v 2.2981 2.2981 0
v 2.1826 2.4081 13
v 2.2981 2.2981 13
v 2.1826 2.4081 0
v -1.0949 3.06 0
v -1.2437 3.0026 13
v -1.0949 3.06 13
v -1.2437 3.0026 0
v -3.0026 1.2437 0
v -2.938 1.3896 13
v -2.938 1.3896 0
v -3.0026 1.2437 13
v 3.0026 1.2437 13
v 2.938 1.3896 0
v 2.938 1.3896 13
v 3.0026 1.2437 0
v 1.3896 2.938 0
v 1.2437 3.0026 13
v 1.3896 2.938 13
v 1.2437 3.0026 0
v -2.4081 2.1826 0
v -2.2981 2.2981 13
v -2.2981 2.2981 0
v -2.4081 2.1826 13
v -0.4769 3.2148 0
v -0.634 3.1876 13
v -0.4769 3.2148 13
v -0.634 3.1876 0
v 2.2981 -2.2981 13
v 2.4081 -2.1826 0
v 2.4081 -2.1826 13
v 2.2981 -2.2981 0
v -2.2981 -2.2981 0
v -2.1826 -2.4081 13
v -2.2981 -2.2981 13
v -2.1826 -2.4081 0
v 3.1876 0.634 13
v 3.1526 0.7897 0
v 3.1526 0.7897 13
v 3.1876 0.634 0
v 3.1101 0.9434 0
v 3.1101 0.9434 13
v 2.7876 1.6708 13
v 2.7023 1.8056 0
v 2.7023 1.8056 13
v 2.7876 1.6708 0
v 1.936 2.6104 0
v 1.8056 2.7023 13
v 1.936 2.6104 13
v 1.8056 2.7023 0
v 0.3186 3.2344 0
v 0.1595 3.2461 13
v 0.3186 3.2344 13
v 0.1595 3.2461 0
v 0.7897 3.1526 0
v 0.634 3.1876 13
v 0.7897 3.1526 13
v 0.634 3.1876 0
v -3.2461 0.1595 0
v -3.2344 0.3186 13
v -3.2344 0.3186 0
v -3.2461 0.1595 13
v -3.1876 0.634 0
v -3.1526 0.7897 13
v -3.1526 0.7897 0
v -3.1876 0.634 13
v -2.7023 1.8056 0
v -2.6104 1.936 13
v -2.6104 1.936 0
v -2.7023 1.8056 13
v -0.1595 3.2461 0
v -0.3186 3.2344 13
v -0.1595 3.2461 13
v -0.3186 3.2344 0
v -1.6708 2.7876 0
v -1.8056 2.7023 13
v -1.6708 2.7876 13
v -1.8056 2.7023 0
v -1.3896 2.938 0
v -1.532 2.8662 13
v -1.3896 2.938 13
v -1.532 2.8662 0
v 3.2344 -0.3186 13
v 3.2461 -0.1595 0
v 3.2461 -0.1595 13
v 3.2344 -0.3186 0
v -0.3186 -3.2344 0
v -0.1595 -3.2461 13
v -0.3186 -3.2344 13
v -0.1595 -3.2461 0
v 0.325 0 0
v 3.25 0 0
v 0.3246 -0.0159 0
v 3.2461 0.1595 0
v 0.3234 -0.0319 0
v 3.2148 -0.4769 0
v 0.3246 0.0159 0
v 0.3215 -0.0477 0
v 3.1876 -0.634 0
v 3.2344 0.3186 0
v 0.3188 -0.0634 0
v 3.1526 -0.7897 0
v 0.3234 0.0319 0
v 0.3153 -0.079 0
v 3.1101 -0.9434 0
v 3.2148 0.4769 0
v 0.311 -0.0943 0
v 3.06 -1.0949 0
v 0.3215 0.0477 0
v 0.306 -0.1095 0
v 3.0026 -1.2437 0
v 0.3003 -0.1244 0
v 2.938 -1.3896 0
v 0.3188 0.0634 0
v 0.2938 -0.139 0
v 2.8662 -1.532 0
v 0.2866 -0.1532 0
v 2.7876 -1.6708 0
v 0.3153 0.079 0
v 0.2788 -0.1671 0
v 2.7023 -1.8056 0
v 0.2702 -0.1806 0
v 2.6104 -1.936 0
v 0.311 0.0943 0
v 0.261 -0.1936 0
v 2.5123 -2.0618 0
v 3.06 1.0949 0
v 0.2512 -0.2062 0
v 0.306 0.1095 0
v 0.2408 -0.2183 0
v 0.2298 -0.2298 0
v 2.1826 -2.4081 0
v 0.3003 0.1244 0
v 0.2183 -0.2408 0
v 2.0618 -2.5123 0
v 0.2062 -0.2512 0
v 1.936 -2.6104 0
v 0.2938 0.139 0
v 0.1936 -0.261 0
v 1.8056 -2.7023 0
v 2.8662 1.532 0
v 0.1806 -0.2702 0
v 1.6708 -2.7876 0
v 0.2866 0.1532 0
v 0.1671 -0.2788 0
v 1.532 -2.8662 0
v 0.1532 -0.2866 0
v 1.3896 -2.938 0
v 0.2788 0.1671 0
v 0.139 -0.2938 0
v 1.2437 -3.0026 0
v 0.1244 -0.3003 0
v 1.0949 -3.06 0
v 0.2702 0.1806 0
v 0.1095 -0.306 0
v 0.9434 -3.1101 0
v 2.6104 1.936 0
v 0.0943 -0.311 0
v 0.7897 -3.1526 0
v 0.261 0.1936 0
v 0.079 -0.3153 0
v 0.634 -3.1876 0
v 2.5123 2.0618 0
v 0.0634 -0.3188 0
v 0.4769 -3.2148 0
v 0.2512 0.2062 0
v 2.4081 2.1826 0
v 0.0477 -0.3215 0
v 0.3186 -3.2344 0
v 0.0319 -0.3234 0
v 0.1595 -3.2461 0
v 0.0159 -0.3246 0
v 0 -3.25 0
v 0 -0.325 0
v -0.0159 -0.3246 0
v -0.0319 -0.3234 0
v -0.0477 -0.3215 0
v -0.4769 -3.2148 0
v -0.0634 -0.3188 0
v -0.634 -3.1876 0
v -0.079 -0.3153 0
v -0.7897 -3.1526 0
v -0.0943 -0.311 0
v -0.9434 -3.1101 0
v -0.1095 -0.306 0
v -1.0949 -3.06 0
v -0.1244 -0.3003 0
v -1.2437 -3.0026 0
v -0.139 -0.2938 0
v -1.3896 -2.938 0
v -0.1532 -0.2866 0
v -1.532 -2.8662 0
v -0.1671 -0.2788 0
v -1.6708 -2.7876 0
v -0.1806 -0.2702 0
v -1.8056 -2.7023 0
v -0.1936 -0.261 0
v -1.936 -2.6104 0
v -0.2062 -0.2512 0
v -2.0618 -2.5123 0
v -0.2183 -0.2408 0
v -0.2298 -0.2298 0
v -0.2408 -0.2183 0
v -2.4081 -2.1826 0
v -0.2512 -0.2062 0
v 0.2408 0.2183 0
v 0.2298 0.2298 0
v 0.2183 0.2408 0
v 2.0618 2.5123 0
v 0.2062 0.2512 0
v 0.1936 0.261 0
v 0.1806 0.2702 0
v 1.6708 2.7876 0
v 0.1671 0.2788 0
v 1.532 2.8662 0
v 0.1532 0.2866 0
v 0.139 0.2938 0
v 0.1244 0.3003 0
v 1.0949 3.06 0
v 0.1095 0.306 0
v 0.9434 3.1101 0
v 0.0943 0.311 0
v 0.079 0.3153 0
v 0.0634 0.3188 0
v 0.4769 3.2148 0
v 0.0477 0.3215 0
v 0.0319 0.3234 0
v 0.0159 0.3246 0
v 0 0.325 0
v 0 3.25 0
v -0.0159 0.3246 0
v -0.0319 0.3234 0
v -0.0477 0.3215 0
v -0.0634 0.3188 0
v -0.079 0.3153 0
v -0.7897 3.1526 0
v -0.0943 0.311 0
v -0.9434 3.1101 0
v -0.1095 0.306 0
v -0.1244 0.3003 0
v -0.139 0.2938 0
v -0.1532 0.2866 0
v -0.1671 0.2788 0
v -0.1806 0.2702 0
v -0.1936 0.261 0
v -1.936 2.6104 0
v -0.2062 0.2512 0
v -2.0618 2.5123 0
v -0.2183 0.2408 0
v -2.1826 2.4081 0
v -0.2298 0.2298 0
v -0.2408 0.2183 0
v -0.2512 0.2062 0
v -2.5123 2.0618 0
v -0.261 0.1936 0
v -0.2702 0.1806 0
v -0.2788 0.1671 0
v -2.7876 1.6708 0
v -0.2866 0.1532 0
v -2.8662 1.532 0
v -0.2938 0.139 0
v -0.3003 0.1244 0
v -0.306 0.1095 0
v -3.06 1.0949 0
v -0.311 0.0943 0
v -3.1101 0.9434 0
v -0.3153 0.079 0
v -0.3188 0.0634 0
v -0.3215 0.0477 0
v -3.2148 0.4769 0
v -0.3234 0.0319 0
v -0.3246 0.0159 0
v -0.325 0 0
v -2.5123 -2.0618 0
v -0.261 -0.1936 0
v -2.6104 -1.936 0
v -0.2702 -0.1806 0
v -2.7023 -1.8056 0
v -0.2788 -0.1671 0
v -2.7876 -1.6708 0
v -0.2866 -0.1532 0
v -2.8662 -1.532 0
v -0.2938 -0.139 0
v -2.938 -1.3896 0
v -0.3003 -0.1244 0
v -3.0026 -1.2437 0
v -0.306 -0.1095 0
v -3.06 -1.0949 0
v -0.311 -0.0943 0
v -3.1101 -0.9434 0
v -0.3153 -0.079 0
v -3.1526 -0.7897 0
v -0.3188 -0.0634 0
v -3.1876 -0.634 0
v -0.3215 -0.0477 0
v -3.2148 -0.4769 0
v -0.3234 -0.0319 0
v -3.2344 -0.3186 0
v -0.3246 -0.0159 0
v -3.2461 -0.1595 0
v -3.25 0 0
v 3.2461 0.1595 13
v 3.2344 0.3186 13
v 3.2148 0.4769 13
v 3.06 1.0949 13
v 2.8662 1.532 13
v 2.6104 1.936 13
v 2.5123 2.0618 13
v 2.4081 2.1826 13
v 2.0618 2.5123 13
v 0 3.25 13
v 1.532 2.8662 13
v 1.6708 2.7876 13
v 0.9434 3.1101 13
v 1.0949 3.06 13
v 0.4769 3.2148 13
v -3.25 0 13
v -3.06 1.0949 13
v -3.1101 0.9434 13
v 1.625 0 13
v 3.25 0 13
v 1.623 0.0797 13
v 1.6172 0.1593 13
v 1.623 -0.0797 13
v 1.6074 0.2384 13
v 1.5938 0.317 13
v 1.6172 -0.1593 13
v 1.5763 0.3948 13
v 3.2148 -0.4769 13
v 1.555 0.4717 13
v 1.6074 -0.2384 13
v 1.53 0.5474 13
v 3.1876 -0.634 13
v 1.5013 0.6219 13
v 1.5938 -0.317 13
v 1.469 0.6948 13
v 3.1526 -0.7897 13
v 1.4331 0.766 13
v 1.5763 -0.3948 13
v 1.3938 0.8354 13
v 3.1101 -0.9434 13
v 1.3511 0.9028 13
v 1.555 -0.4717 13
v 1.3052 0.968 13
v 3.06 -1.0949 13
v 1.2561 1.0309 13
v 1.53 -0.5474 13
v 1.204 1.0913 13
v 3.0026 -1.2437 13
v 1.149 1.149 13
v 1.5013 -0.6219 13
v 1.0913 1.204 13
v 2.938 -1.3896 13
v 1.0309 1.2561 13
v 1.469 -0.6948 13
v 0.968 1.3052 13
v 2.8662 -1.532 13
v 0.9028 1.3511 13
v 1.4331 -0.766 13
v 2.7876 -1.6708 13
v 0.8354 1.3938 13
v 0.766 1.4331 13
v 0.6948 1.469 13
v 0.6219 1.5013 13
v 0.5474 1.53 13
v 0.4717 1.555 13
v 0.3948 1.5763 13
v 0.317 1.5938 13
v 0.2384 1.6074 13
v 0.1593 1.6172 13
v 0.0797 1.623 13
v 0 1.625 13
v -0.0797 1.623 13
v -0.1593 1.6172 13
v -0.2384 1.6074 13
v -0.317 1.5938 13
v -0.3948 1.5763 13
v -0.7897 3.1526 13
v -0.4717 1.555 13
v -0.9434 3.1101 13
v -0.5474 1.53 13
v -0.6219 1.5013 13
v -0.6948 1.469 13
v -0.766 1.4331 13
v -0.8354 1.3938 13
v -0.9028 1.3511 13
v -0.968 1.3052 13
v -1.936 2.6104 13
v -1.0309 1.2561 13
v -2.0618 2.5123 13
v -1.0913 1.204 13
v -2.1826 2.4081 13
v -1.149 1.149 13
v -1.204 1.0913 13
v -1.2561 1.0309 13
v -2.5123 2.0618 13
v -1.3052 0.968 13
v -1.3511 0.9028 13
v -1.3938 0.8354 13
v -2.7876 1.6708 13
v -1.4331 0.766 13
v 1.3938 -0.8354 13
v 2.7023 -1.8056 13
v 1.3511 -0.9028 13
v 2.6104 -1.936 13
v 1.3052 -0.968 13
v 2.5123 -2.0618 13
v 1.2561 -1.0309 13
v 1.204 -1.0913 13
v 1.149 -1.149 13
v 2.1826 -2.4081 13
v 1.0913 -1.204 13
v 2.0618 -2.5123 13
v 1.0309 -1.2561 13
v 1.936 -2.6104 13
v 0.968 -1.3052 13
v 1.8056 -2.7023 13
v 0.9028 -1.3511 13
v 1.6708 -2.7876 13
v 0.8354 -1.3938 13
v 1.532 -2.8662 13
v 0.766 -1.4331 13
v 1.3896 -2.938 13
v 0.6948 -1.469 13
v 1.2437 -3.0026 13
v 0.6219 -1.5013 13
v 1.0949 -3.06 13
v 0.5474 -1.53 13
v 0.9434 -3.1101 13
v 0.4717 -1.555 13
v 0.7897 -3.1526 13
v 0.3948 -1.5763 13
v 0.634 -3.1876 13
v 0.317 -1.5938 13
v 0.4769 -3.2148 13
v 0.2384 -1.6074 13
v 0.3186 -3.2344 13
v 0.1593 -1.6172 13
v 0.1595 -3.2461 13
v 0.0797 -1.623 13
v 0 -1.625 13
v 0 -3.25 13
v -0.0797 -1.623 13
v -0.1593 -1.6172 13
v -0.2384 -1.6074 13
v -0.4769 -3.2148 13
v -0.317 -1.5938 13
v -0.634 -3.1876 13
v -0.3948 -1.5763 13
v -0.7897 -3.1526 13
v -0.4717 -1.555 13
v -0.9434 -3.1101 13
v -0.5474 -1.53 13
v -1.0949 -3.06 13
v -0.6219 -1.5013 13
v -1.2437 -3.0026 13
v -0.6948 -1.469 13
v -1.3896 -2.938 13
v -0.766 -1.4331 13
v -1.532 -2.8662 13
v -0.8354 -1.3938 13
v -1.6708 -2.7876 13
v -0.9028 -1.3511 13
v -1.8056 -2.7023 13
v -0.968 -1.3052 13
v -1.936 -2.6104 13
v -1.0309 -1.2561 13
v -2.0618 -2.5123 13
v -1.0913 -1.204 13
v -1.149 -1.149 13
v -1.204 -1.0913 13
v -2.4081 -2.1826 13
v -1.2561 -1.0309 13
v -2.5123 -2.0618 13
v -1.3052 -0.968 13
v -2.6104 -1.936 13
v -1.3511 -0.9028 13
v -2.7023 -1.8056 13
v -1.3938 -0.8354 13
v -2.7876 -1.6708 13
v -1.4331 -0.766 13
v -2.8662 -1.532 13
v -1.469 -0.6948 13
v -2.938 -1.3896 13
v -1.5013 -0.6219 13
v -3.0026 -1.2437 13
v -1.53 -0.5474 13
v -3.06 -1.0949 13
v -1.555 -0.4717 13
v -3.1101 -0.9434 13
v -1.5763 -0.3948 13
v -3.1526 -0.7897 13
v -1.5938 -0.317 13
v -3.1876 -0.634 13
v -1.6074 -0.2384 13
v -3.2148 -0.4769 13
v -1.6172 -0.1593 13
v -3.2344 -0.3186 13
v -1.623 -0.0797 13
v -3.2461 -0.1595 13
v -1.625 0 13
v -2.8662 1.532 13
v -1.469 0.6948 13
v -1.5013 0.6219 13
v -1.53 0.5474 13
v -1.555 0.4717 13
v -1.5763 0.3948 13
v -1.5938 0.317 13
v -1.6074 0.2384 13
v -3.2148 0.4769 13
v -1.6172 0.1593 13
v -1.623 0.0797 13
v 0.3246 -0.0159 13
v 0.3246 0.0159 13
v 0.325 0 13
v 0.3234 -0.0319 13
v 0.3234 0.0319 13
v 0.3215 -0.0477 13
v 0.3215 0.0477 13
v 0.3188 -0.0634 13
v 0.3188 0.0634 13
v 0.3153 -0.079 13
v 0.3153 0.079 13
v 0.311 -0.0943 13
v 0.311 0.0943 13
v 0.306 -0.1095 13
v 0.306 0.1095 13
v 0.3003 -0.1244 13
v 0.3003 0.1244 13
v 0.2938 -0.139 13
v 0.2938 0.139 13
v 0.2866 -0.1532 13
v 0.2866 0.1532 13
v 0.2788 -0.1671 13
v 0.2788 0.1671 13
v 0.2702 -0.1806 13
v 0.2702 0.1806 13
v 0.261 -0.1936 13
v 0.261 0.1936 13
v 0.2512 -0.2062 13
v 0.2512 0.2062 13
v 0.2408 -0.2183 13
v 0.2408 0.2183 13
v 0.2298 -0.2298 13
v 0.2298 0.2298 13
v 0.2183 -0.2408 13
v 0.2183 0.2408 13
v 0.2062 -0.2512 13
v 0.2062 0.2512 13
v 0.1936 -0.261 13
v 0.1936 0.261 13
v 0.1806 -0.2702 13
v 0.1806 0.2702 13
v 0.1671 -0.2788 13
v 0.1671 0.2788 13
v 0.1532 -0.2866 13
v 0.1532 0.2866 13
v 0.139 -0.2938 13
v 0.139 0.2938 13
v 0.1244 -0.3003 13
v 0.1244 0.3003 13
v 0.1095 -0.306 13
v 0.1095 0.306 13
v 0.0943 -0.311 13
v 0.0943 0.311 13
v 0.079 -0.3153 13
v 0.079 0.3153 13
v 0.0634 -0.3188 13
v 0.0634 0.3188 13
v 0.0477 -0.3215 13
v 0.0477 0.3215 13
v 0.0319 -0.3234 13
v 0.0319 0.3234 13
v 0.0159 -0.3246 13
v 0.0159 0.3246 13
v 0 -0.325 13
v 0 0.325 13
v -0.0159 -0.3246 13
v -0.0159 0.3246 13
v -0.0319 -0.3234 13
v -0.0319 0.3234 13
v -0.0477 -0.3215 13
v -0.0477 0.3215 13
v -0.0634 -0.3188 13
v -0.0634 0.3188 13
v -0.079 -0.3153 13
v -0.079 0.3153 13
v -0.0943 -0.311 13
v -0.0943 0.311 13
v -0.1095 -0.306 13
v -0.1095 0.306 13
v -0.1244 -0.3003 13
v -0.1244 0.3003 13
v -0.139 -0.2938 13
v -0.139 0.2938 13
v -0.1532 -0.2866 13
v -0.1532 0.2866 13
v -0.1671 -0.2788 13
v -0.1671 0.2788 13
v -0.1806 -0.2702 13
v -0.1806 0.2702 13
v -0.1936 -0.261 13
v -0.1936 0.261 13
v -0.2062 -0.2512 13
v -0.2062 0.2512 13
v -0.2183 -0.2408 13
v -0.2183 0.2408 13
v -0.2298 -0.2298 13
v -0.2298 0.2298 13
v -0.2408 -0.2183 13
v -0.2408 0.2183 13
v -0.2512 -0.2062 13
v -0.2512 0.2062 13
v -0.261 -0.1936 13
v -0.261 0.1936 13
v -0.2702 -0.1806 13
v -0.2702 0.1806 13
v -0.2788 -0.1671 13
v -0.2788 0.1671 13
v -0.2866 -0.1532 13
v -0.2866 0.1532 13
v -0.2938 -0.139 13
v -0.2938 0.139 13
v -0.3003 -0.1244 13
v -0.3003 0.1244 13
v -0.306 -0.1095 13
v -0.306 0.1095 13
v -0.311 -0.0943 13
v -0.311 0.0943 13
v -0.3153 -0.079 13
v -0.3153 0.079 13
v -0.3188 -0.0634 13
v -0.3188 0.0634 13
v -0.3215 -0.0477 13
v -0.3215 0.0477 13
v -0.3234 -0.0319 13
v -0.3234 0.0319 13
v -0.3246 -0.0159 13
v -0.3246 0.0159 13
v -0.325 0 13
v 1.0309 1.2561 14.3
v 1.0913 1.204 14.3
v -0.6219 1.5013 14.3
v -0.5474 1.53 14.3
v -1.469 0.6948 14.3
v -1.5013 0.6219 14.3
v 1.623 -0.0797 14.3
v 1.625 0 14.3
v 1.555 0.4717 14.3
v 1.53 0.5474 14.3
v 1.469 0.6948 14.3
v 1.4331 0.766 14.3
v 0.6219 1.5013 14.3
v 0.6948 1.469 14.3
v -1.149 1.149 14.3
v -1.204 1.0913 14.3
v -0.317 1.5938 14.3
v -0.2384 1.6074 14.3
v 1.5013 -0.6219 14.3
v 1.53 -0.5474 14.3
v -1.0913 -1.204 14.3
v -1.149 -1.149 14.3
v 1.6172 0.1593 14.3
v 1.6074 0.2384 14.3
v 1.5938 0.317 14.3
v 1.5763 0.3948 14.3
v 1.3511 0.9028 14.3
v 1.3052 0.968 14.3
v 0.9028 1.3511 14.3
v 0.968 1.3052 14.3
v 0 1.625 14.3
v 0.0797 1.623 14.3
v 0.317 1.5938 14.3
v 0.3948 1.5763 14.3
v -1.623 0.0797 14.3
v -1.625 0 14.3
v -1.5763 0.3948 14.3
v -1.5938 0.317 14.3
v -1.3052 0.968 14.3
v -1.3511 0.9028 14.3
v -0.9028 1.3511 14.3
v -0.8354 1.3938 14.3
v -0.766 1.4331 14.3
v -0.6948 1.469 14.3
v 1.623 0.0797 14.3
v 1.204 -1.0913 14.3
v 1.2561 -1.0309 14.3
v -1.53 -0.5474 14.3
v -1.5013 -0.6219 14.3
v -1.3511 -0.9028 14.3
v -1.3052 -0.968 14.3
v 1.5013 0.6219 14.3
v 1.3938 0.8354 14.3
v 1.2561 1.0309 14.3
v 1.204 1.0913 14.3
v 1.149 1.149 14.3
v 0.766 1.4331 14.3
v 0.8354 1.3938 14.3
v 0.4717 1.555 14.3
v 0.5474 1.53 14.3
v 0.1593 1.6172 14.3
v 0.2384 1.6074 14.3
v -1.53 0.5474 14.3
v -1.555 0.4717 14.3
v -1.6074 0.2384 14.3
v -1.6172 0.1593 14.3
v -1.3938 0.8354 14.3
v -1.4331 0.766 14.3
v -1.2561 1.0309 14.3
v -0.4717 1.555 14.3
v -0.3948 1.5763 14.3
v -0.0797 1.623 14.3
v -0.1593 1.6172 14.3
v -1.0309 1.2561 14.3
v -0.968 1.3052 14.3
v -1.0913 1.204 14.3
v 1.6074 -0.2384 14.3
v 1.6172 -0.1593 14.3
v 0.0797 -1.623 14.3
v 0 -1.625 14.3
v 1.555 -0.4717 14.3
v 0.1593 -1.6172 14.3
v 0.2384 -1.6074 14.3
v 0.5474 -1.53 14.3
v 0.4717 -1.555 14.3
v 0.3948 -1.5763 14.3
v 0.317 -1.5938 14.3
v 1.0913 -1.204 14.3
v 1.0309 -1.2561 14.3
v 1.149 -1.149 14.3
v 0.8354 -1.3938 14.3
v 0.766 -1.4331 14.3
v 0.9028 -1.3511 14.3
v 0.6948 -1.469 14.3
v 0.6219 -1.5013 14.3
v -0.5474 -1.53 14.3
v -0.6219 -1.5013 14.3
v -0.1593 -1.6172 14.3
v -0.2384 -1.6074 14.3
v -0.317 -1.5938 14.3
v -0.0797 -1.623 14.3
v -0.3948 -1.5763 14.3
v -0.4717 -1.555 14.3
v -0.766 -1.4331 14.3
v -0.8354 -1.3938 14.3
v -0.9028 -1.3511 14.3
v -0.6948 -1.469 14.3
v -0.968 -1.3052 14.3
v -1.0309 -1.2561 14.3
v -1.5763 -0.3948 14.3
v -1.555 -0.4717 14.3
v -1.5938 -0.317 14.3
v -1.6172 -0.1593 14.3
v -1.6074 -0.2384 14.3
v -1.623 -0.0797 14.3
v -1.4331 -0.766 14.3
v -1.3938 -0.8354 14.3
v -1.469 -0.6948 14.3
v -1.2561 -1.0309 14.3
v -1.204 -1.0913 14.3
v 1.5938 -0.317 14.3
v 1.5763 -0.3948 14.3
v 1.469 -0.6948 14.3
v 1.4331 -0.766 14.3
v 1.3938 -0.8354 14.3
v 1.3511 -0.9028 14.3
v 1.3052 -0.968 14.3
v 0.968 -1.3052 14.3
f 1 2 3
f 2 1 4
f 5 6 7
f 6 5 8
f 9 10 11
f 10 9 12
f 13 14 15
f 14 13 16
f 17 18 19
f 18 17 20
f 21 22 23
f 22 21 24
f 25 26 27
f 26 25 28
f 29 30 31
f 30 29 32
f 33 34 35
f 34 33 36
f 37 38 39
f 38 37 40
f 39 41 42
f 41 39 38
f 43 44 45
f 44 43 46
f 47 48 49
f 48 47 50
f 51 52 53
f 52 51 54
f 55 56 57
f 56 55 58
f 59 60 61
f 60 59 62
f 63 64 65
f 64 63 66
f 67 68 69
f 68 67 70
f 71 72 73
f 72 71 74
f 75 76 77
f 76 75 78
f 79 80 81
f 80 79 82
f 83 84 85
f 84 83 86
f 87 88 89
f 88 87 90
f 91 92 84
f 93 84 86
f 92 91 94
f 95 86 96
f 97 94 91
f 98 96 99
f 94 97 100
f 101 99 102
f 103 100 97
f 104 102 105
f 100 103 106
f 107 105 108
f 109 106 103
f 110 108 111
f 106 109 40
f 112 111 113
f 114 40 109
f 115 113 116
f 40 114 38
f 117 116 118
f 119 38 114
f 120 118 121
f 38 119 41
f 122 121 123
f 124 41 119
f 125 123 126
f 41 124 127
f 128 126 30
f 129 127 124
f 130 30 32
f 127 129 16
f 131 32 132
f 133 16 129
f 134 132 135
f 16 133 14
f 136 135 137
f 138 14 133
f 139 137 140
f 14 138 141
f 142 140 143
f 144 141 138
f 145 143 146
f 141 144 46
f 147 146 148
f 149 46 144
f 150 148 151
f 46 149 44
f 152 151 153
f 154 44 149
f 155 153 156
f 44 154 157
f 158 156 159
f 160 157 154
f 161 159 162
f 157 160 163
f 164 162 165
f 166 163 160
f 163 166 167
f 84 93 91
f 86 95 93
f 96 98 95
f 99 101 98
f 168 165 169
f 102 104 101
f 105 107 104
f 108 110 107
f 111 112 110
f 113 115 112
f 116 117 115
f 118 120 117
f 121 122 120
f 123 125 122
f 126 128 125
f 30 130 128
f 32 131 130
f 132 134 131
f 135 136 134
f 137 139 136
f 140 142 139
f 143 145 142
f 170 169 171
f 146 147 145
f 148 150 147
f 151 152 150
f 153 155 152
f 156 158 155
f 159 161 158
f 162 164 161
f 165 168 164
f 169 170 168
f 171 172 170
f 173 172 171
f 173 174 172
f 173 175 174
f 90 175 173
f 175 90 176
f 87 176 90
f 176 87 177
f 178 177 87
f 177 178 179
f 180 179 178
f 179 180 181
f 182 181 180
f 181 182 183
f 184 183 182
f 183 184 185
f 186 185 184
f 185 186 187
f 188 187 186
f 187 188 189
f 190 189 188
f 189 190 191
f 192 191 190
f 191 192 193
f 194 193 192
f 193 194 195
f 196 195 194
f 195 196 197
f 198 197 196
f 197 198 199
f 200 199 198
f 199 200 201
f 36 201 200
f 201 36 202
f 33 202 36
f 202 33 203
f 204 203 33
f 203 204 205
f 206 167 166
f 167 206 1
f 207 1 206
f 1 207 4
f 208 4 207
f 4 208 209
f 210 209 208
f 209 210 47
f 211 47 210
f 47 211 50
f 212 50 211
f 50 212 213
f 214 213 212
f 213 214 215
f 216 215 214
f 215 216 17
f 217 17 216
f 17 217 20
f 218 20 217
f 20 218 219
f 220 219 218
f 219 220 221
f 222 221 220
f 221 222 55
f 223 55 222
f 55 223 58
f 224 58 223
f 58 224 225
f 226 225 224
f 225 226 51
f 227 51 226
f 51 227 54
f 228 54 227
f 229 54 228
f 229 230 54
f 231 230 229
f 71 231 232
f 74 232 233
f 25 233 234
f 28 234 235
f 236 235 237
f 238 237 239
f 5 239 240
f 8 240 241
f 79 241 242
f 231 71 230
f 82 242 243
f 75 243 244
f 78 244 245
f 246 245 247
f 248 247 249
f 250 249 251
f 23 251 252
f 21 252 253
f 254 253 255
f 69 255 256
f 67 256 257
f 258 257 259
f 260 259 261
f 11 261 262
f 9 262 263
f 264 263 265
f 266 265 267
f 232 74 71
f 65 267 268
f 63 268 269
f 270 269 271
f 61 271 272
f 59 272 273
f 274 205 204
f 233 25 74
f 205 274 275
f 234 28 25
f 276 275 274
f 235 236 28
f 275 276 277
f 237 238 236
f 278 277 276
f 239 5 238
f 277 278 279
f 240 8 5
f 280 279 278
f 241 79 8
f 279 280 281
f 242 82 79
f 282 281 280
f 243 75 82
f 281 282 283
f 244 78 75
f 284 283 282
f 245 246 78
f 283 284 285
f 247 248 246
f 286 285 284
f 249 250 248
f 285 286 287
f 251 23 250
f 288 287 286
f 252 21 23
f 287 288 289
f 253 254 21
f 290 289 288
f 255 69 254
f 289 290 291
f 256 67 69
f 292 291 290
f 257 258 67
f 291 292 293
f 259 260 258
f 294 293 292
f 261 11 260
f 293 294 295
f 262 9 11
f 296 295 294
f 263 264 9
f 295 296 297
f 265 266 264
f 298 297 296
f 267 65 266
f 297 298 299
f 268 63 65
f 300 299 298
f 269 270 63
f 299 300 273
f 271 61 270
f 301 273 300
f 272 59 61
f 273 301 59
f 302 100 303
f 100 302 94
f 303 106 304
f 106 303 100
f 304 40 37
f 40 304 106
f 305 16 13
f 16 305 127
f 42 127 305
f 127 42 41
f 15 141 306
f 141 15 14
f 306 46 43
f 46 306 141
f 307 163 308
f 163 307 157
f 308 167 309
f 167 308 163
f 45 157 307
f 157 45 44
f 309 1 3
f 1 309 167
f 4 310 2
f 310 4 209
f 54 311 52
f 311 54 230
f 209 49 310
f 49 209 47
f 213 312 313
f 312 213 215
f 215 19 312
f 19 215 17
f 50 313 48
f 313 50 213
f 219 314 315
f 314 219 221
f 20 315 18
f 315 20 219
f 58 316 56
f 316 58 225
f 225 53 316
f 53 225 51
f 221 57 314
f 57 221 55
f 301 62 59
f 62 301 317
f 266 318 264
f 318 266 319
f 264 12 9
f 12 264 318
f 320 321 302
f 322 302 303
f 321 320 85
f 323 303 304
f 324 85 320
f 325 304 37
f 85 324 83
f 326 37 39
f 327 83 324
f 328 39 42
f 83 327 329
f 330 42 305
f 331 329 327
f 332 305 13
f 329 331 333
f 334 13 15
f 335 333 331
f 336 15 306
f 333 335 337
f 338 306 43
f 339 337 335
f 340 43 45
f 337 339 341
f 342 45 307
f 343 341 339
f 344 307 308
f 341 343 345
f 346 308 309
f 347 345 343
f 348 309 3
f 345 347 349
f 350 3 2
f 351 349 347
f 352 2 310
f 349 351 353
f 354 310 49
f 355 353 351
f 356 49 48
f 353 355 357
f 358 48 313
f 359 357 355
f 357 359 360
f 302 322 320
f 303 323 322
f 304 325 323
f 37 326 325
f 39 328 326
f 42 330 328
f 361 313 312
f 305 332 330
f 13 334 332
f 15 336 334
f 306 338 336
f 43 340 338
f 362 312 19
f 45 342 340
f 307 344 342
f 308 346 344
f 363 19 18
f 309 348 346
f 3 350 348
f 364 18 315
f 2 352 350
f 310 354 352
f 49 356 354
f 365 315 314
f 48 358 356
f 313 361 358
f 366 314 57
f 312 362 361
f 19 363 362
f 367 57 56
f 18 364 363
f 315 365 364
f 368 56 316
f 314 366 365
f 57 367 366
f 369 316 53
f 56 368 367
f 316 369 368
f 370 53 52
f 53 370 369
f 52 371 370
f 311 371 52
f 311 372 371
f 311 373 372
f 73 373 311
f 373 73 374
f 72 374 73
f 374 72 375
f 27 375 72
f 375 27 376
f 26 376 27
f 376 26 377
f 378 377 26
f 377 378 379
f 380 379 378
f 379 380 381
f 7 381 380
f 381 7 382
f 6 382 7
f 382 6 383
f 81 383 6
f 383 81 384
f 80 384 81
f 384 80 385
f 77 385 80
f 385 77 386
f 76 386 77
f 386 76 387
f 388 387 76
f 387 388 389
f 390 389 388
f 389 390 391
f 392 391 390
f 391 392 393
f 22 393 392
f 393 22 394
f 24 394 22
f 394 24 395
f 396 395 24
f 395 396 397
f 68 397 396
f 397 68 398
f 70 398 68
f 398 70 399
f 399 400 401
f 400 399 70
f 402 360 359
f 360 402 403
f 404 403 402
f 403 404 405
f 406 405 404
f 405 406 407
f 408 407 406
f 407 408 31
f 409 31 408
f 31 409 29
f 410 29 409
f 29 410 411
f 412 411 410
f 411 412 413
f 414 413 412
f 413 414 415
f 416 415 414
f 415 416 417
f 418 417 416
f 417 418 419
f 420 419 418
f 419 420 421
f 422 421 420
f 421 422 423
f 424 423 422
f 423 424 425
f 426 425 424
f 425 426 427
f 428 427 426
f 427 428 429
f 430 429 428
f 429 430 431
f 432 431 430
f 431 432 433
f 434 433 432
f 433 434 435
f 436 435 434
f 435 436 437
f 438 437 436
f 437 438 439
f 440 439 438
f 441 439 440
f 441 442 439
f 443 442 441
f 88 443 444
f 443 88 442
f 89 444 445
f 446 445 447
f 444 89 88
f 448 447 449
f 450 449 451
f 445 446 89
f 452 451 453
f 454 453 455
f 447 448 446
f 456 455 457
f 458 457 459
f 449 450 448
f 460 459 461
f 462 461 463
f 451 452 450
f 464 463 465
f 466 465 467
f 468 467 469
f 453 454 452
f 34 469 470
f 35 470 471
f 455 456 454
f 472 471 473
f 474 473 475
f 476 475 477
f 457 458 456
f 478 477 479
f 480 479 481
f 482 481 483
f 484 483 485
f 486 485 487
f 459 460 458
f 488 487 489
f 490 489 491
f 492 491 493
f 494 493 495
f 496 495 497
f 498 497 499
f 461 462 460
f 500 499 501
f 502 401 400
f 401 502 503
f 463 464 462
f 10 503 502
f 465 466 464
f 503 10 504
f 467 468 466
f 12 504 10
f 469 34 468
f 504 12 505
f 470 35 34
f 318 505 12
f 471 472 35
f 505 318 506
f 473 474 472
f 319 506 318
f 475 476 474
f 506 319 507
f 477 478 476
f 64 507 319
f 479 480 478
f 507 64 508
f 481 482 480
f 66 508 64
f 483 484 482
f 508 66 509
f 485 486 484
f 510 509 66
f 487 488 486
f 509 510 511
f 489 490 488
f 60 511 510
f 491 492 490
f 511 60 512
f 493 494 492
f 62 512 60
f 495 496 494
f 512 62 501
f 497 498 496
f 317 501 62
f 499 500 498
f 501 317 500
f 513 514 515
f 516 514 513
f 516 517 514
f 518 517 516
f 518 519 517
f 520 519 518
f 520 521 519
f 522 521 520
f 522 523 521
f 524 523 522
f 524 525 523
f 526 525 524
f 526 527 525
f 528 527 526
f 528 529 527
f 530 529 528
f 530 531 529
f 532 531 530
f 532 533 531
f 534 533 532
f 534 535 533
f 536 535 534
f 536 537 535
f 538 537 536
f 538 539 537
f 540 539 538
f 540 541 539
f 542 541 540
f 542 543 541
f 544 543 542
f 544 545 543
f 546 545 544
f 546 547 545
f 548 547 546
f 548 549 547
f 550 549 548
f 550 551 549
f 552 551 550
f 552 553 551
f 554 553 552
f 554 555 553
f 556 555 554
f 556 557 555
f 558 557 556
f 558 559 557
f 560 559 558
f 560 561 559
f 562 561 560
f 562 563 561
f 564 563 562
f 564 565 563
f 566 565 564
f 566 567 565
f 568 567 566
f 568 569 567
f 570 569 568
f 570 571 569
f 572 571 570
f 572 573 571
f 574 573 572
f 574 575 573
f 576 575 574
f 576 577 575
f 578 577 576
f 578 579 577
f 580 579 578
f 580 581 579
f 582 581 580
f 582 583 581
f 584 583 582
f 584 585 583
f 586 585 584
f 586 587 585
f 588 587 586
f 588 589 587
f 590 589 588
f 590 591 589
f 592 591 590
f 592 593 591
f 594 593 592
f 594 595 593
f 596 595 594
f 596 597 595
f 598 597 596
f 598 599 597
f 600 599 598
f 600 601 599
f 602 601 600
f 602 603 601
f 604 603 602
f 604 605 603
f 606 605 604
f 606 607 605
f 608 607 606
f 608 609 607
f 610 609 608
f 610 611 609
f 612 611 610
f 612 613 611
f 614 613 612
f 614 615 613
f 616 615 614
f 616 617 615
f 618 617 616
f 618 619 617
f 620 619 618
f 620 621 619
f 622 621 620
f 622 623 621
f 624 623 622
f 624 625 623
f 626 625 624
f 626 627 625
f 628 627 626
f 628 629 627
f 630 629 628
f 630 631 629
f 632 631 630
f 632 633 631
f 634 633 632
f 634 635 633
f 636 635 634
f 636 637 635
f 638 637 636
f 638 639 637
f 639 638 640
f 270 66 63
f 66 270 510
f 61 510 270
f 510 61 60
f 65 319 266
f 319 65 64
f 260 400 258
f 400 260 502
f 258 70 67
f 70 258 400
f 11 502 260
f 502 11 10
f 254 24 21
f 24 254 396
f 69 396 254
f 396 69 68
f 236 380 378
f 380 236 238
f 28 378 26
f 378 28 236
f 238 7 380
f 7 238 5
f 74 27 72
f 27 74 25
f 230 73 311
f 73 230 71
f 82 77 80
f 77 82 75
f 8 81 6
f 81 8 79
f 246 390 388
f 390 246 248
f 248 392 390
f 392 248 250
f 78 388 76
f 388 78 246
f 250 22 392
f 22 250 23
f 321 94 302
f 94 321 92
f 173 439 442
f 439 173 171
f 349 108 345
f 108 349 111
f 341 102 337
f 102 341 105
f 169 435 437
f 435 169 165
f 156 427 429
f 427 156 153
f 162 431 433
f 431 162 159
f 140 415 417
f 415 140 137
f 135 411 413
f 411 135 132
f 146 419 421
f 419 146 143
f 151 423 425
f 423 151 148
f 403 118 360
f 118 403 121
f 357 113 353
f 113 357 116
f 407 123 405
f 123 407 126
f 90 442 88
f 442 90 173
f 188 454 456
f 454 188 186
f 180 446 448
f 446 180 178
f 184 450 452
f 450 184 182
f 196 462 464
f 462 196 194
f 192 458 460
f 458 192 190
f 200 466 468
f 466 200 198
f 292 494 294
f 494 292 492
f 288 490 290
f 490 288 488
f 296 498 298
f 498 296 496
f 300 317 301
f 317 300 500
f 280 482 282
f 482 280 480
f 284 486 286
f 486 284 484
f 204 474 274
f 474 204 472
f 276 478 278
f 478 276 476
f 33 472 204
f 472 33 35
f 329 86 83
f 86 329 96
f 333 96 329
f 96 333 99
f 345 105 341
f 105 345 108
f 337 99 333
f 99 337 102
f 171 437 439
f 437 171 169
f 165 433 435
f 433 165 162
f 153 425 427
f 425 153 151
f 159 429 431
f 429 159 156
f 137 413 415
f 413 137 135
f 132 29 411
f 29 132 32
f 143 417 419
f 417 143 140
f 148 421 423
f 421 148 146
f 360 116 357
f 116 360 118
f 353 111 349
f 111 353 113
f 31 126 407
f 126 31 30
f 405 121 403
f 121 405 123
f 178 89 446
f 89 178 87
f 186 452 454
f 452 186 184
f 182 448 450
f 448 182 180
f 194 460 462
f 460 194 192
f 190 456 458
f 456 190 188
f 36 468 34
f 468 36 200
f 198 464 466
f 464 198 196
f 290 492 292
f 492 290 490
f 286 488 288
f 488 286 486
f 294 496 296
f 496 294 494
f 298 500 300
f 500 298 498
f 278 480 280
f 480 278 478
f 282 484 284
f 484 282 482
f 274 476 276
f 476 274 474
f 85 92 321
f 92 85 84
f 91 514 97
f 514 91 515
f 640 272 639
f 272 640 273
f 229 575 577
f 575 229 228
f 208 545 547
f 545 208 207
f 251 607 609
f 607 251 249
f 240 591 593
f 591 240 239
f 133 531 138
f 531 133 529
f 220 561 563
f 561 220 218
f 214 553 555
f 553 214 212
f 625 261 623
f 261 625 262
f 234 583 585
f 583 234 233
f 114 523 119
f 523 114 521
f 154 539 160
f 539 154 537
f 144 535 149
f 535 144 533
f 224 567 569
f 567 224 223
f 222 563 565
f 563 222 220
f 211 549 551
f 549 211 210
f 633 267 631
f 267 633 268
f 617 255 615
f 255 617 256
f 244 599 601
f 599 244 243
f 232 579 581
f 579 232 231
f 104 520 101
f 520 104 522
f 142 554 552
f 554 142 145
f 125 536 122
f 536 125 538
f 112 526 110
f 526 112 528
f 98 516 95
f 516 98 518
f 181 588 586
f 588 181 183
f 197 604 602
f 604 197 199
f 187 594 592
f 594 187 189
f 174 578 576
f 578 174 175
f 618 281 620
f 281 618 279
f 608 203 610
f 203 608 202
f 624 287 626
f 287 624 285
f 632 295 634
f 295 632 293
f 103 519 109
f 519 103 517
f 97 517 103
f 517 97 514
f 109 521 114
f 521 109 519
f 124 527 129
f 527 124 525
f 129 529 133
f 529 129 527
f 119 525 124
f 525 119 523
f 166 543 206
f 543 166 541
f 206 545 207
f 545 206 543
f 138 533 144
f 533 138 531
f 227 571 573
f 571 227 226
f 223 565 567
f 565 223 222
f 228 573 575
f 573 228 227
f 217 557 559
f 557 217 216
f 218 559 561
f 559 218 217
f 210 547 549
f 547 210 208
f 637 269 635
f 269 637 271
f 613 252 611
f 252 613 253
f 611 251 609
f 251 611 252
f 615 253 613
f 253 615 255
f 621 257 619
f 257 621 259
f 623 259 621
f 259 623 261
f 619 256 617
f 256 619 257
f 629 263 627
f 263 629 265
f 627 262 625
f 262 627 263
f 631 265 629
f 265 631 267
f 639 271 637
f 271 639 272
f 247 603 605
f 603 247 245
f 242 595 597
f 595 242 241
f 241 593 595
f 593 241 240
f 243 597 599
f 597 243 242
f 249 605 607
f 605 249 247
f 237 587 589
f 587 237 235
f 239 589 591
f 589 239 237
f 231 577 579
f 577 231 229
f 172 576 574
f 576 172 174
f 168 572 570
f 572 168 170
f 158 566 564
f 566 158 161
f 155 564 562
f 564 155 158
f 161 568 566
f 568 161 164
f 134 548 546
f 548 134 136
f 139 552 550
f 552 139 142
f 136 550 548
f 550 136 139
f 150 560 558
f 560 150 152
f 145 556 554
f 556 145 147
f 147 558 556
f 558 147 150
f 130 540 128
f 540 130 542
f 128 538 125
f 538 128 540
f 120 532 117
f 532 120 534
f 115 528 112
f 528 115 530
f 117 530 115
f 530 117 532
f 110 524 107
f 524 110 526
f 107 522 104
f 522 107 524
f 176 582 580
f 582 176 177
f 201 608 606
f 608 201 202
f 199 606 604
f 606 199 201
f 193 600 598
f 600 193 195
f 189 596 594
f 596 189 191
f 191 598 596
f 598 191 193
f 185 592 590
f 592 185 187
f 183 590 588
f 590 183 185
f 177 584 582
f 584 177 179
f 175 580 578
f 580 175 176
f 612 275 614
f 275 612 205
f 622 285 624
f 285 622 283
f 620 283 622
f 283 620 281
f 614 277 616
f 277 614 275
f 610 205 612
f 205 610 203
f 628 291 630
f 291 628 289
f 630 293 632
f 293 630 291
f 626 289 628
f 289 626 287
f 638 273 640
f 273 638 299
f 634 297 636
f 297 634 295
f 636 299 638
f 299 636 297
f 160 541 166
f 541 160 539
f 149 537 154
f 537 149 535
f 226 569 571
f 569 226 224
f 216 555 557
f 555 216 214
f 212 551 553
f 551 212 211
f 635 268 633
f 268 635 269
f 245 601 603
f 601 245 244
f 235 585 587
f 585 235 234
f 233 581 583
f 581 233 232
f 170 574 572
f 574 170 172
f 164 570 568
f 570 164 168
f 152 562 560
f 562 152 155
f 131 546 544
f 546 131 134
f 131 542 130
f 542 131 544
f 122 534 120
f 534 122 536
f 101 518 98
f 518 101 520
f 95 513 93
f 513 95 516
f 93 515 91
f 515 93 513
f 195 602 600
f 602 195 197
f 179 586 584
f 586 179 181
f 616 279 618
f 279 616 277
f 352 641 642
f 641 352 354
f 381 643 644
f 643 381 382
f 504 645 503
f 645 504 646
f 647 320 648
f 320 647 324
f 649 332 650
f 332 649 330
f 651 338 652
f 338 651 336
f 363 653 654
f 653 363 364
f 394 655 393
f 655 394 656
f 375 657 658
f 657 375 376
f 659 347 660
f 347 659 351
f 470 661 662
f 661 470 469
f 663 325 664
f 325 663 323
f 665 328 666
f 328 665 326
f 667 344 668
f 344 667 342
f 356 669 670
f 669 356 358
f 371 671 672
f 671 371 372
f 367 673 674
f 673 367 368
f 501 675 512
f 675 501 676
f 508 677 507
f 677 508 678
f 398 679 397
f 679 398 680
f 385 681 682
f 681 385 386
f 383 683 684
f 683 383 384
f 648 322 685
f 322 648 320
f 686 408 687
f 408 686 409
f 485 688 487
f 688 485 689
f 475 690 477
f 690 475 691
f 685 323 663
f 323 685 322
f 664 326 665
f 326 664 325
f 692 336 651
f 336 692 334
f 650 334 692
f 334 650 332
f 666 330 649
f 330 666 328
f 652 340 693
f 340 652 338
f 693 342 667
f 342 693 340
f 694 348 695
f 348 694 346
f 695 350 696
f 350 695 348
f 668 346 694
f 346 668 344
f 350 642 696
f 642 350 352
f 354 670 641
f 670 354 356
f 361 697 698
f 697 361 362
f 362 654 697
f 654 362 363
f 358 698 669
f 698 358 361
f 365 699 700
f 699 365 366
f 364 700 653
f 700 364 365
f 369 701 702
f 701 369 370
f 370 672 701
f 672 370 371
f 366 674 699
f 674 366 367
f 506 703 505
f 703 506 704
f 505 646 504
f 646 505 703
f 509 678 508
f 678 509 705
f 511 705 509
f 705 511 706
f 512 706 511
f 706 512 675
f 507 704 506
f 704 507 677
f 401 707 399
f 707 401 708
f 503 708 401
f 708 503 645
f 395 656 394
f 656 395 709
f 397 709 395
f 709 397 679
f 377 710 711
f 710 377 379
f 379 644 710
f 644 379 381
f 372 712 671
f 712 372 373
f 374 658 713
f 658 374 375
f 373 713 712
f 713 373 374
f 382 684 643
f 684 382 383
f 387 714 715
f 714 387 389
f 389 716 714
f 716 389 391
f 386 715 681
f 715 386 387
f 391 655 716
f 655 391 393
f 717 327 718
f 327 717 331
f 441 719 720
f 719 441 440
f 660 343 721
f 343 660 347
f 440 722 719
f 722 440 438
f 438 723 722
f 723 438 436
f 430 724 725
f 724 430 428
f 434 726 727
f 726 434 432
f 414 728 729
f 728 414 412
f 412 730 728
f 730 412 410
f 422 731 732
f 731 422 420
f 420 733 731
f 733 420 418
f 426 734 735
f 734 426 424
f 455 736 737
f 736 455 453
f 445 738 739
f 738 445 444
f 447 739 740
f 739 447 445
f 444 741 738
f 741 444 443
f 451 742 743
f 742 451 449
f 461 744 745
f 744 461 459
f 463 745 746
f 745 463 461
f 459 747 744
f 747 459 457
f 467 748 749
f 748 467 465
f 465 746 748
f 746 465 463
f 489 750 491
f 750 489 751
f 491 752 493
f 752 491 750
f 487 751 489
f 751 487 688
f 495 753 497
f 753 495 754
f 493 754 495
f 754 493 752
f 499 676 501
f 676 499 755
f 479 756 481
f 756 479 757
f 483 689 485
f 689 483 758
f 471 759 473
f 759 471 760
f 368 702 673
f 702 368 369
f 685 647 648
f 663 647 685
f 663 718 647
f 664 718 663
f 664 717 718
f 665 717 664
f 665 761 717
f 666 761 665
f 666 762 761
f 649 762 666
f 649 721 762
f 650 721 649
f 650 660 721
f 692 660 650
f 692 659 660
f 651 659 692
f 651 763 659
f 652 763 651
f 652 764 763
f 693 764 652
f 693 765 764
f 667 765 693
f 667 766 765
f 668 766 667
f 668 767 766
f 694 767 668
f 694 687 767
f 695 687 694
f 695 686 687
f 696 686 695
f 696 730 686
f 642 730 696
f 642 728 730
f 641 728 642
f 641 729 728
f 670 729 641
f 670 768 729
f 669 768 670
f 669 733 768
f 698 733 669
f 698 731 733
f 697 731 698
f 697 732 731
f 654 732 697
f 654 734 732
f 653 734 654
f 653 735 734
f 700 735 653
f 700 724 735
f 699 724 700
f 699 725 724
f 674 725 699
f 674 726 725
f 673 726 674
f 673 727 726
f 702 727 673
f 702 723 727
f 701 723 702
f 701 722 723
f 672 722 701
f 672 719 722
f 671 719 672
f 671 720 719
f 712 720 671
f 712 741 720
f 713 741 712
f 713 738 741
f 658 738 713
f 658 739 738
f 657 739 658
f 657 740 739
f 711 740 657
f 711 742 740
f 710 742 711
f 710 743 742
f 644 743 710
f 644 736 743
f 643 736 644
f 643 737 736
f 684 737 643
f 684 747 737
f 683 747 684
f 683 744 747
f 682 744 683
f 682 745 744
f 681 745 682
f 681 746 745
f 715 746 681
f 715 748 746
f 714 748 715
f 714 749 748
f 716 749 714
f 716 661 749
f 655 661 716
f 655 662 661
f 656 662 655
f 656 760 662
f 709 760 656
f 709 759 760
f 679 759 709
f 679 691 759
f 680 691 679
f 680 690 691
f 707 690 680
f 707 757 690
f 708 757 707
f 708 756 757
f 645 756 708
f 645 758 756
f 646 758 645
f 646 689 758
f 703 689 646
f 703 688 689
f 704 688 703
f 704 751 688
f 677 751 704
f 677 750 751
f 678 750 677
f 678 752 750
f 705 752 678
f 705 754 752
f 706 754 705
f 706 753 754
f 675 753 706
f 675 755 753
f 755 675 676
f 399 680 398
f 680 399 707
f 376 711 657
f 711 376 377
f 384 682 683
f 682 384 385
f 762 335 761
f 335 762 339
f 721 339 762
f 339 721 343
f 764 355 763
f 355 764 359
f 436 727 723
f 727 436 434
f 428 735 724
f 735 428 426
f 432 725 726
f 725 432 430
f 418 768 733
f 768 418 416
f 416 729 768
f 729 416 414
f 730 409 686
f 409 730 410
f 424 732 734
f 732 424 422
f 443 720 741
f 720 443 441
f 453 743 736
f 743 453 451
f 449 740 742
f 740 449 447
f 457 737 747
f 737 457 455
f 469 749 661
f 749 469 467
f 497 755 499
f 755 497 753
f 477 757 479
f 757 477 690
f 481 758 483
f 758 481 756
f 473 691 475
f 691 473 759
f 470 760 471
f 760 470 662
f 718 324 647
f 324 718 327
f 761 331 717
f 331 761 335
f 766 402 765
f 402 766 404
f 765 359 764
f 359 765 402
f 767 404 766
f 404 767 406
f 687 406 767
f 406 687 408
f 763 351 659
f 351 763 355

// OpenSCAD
// Generated by SolidPython 1.1.3 on 2023-04-08 02:27:49
$fn =128;


union() {
	difference() {
		cylinder(h = 13, r = 3.2500000000);
		cylinder(h = 13, r = 0.3250000000);
	}
	translate(v = [0, 0, 13]) {
		cylinder(h = 1.3000000000, r = 1.6250000000);
	}
}
